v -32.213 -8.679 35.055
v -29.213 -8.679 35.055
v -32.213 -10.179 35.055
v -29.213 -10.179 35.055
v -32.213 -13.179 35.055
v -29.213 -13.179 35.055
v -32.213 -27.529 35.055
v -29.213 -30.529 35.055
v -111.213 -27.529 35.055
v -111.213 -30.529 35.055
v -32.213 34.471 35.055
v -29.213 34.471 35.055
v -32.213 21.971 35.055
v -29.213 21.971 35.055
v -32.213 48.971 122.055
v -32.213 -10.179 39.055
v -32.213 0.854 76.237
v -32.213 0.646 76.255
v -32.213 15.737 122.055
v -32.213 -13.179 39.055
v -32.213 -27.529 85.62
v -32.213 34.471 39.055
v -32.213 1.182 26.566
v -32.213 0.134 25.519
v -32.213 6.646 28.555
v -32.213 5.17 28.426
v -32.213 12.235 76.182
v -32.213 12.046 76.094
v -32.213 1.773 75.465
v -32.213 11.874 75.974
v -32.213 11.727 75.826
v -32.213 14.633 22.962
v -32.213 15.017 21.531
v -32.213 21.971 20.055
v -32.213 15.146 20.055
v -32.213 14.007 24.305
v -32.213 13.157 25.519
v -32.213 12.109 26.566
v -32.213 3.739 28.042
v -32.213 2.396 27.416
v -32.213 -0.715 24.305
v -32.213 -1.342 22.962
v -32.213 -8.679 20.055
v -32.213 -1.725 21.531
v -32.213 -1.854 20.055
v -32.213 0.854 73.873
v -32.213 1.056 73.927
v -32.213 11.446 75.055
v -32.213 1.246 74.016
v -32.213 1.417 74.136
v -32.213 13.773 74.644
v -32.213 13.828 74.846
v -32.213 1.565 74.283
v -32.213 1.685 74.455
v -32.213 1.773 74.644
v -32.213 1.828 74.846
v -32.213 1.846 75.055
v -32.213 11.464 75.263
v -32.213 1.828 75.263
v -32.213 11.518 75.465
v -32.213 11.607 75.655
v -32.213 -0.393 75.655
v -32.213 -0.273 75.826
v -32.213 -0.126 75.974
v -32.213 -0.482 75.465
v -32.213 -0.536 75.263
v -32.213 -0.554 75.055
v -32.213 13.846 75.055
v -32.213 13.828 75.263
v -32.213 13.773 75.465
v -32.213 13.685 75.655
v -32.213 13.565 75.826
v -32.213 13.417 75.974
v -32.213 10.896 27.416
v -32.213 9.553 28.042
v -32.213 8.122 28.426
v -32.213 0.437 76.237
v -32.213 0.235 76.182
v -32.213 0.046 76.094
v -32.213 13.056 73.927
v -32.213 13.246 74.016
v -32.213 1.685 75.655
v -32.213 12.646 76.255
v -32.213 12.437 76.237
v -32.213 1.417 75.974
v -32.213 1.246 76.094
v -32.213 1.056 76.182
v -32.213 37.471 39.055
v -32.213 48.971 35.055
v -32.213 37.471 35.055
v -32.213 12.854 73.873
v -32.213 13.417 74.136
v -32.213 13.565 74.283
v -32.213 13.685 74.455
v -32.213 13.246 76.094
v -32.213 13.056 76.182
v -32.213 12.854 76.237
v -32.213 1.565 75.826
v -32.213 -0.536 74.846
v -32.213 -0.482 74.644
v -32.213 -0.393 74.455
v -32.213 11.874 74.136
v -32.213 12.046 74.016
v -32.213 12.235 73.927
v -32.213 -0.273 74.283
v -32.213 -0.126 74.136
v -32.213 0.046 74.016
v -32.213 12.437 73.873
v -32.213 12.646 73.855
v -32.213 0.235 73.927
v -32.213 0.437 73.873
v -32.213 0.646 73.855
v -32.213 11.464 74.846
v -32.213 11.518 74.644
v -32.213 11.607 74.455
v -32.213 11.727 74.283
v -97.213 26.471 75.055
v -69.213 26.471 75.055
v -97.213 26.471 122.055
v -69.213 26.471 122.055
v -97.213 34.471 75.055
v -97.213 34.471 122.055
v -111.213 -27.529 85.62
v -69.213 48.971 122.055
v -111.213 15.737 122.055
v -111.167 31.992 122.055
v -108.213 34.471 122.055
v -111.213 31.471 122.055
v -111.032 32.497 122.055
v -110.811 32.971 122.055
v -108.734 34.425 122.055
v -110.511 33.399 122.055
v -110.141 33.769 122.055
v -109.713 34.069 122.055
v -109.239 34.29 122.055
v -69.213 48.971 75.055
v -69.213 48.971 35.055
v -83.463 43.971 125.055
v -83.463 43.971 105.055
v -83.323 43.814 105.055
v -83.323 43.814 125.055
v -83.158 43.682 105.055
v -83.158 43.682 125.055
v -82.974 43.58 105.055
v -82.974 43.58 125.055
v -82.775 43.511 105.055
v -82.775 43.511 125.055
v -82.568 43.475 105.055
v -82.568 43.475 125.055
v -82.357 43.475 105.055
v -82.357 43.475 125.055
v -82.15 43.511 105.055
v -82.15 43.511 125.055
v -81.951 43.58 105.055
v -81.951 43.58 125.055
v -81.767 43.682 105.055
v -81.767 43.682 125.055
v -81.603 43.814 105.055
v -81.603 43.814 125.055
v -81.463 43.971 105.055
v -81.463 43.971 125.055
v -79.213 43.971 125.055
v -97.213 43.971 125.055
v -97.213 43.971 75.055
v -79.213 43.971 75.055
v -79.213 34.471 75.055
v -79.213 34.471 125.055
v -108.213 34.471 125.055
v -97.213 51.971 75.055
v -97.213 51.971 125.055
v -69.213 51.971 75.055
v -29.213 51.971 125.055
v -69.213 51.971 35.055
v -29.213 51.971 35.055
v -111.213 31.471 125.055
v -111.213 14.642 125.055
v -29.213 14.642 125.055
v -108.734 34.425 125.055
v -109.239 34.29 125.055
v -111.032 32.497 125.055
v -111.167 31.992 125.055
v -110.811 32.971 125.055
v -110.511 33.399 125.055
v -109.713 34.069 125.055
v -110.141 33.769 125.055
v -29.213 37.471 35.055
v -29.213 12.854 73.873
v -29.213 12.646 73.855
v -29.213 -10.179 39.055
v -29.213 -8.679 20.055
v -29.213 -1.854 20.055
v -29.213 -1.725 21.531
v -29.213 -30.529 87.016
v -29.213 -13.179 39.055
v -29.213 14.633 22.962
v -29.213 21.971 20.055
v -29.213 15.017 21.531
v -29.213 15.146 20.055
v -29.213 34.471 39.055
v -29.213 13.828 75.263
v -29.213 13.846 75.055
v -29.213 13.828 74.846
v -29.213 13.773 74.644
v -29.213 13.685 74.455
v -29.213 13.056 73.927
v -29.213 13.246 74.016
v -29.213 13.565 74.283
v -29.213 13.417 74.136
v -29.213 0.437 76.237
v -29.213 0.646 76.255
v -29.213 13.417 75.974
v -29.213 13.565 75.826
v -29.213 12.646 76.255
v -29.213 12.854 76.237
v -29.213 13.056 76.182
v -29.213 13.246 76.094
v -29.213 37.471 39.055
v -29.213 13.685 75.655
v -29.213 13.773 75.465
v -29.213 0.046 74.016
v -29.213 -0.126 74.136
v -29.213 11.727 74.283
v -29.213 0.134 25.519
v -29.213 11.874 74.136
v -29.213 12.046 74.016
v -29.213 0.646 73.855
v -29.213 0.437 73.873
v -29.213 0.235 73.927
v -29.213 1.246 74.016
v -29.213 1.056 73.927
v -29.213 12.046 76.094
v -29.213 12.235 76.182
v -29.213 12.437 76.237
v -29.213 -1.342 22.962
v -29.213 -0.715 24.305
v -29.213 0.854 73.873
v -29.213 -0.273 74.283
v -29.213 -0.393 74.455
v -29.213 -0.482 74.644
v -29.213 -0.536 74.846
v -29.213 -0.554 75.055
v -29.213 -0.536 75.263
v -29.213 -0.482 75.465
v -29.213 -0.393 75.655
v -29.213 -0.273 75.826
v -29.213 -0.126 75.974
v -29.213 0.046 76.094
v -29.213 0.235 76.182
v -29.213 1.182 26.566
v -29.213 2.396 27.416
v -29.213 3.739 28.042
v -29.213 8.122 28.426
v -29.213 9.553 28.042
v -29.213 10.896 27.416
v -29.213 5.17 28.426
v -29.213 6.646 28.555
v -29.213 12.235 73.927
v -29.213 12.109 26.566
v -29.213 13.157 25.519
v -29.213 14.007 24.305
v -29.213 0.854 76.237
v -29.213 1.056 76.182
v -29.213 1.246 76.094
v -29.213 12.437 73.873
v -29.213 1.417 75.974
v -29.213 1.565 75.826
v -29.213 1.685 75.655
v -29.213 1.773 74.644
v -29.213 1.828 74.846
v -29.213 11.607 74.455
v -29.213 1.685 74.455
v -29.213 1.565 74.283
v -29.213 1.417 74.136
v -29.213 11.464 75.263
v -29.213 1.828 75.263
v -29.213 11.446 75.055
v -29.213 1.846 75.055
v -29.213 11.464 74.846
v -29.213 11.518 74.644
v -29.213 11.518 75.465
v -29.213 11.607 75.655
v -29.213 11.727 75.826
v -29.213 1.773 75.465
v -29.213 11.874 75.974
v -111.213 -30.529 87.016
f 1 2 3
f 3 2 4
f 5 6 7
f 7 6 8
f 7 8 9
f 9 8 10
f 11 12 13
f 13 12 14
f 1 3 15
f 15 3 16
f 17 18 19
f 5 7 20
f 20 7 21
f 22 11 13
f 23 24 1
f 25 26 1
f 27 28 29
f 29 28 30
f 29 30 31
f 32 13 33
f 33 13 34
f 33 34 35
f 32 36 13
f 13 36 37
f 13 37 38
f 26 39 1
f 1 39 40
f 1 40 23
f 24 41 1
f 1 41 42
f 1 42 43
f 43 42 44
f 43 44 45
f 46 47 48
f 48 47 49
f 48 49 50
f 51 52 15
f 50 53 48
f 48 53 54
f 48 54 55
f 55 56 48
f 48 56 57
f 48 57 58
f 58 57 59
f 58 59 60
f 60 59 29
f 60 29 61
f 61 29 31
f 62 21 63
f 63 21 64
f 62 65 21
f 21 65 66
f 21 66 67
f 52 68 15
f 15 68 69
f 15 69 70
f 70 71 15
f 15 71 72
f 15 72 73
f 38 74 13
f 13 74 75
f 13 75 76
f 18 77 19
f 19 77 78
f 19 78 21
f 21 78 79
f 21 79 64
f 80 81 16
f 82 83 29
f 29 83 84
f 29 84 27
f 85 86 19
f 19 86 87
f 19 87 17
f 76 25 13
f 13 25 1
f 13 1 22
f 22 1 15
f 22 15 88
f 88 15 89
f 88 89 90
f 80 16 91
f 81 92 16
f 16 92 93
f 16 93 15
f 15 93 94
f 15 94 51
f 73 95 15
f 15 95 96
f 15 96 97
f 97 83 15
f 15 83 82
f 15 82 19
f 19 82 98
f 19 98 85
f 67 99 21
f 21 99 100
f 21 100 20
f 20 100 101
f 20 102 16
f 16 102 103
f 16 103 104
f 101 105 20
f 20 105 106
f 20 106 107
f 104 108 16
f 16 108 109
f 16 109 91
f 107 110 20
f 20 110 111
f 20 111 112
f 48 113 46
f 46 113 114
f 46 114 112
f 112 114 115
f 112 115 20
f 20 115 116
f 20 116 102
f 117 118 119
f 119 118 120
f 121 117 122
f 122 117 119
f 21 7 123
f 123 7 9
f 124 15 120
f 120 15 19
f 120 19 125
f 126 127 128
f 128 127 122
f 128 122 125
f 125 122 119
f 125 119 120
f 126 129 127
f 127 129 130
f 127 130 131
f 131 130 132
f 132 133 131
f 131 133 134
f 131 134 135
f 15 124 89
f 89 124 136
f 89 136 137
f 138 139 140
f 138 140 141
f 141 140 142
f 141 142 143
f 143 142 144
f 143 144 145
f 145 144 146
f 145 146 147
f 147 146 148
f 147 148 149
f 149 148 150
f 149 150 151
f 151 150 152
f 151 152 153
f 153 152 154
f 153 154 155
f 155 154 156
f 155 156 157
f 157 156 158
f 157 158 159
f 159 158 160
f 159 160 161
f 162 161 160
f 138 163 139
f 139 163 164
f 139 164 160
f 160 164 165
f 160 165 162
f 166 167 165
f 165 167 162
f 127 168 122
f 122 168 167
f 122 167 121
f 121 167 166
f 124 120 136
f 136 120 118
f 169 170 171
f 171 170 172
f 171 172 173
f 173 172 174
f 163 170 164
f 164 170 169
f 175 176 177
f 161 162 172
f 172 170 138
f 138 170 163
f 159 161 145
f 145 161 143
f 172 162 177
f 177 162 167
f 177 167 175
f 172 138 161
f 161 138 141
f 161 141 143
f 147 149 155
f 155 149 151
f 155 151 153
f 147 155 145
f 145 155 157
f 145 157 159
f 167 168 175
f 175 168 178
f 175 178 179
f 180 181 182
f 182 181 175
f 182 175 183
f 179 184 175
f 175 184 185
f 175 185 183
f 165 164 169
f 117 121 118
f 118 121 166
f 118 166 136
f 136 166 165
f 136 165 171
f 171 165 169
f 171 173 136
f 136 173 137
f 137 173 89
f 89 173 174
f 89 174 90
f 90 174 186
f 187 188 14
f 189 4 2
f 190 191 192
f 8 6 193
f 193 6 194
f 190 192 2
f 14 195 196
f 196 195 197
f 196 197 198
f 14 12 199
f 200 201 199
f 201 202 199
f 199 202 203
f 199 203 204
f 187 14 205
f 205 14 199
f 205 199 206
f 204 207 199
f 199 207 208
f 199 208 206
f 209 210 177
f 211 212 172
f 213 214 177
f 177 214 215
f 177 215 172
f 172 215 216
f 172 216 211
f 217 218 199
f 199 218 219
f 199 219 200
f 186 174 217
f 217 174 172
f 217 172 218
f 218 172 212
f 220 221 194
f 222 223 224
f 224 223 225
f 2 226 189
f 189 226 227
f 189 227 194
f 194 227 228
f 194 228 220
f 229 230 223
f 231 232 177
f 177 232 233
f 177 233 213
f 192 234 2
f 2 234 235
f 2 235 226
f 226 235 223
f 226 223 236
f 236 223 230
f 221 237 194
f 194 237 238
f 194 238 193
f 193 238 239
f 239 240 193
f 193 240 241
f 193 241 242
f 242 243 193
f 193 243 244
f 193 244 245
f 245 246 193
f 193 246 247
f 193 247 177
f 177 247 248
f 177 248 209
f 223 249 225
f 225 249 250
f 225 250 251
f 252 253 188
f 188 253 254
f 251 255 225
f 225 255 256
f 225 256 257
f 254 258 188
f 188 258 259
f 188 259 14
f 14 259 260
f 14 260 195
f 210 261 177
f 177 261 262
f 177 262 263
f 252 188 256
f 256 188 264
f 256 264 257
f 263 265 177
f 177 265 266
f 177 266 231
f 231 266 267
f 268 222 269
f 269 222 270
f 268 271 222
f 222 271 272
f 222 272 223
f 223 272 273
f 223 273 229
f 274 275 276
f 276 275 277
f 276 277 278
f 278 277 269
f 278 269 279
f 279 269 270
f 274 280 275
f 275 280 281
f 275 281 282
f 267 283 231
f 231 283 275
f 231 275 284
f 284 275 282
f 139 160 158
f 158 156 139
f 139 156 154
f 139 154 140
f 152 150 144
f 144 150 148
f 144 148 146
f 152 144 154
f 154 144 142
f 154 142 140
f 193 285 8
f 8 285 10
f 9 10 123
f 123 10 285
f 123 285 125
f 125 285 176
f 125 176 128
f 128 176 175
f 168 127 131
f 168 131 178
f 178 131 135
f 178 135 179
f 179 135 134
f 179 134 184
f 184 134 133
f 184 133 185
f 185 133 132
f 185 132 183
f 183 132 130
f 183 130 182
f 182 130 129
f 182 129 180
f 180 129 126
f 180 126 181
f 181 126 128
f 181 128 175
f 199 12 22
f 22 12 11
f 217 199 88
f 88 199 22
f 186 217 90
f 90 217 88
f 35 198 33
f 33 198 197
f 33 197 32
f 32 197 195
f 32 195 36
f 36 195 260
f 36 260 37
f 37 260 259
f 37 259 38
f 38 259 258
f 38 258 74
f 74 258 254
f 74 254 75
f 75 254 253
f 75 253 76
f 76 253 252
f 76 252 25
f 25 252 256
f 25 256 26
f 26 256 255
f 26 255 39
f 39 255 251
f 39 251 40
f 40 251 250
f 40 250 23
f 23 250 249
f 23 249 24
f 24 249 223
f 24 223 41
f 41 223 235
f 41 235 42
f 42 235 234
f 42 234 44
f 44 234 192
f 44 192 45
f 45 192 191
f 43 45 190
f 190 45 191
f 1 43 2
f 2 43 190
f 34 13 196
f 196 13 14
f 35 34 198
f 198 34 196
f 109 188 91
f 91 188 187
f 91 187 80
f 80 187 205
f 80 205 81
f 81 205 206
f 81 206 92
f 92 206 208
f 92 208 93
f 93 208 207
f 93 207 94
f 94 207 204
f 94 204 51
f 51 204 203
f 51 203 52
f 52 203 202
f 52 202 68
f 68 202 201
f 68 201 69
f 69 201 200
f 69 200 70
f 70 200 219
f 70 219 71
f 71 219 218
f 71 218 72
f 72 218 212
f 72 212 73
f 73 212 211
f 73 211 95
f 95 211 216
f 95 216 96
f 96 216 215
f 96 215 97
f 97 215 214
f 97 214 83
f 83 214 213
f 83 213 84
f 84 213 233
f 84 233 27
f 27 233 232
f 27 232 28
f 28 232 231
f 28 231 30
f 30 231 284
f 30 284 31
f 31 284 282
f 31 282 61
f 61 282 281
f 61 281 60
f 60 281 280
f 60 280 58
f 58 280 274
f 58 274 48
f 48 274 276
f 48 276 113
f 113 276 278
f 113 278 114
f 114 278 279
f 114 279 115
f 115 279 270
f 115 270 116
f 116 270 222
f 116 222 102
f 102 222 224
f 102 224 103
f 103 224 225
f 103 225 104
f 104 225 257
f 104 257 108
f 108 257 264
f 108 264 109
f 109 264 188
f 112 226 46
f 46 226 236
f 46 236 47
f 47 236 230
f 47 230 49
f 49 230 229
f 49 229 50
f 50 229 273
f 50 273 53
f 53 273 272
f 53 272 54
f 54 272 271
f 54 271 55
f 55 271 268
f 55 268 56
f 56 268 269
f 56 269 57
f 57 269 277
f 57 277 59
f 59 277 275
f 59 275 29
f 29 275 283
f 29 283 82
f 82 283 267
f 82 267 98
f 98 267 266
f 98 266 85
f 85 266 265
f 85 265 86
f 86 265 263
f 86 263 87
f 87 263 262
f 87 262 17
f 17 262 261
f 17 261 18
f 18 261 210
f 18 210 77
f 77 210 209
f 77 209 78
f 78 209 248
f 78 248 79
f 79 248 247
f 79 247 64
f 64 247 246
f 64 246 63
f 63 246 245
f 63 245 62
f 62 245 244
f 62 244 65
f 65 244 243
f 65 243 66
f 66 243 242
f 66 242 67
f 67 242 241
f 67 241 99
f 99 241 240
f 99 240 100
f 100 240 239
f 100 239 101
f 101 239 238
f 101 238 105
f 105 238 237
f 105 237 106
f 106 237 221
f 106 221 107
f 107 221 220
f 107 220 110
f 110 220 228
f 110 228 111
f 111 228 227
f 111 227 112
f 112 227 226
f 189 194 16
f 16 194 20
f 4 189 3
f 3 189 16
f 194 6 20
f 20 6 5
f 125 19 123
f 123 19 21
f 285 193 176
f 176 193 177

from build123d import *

# Parameters (mm, degrees)
BOSS_EXTRUDE1_DEPTH = 50
SKETCH2_W           = 3
SKETCH2_H           = 22.5
SKETCH2_W_2         = 40
SKETCH2_H_2         = 3
BOSS_EXTRUDE2_DEPTH = 40
SKETCH3_W           = 18
SKETCH3_H           = 9.5
CUT_EXTRUDE1_DEPTH  = 30
SKETCH4_W           = 3
SKETCH4_H           = 90
BOSS_EXTRUDE3_DEPTH = 79.5
SKETCH6_W           = 90
SKETCH6_H           = 3
BOSS_EXTRUDE4_DEPTH = 79
BOSS_EXTRUDE5_DEPTH = 3
FILLET1_R           = 3
SKETCH11_W          = 4
SKETCH11_H          = 3
CUT_EXTRUDE2_DEPTH  = 3
BOSS_EXTRUDE6_DEPTH = 3
SKETCH15_R          = 1.2
SKETCH15_W          = 4
SKETCH15_H          = 3
CUT_EXTRUDE3_DEPTH  = 3
CUT_EXTRUDE4_DEPTH  = 83
BOSS_EXTRUDE7_DEPTH = 82


with BuildPart() as part:
    # Sketch1 → Boss-Extrude1 (new body)
    with BuildSketch(Plane.XY.offset(75.054829109)):
        with BuildLine():
            Line((-97.212578399, 43.970791156), (-83.462578399, 43.970791156))
            ThreePointArc((-83.462578399, 43.970791156), (-82.462578399, 43.470791156), (-81.462578399, 43.970791156))
            Line((-81.462578399, 43.970791156), (-79.212578399, 43.970791156))
            Line((-79.212578399, 43.970791156), (-79.212578399, 34.470791156))
            Line((-79.212578399, 34.470791156), (-97.212578399, 34.470791156))
            Line((-97.212578399, 34.470791156), (-97.212578399, 26.470791156))
            Line((-97.212578399, 26.470791156), (-69.212578399, 26.470791156))
            Line((-69.212578399, 26.470791156), (-69.212578399, 51.970791156))
            Line((-69.212578399, 51.970791156), (-97.212578399, 51.970791156))
            Line((-97.212578399, 51.970791156), (-97.212578399, 43.970791156))
        make_face()
    extrude(amount=BOSS_EXTRUDE1_DEPTH)

    # Sketch2 → Boss-Extrude2 (add)
    with BuildSketch(Plane(origin=(-69.212578399, 0, 0), x_dir=(0, 0, -1), z_dir=(1, 0, 0))):
        with Locations((-123.554829109, 37.720791156)):
            Rectangle(SKETCH2_W, SKETCH2_H)
        Polygon((-75.054829109, 51.970791156), (-125.054829109, 51.970791156), (-125.054829109, 48.970791156), (-122.054829109, 48.970791156), (-75.054829109, 48.970791156), align=None)
        with Locations((-55.054829109, 50.470791156)):
            Rectangle(SKETCH2_W_2, SKETCH2_H_2)
    extrude(amount=BOSS_EXTRUDE2_DEPTH)

    # Sketch3 → Cut-Extrude1 (cut)
    with BuildSketch(Plane(origin=(0, 0, 75.054829109), x_dir=(-1, 0, 0), z_dir=(0, 0, -1))):
        with Locations((88.212578399, 39.220791156)):
            Rectangle(SKETCH3_W, SKETCH3_H)
    extrude(amount=-CUT_EXTRUDE1_DEPTH, mode=Mode.SUBTRACT)

    # Sketch4 → Boss-Extrude3 (add)
    with BuildSketch(Plane.XZ.offset(-48.970791156)):
        with Locations((-30.712578399, 80.054829109)):
            Rectangle(SKETCH4_W, SKETCH4_H)
    extrude(amount=BOSS_EXTRUDE3_DEPTH)

    # Sketch6 → Boss-Extrude4 (add)
    with BuildSketch(Plane.ZY.offset(32.212578399)):
        with Locations((80.054829109, -29.029208844)):
            Rectangle(SKETCH6_W, SKETCH6_H)
    extrude(amount=BOSS_EXTRUDE4_DEPTH)

    # Sketch7 → Boss-Extrude5 (add)
    with BuildSketch(Plane.XY.offset(125.054829109)):
        Polygon((-111.212578399, -27.529208844), (-32.212578399, -27.529208844), (-32.212578399, 26.470791156), (-97.212578399, 26.470791156), (-97.212578399, 34.470791156), (-111.212578399, 34.470791156), align=None)
    extrude(amount=-BOSS_EXTRUDE5_DEPTH)

    # Fillet1
    fillet1_edges = [part.edges().sort_by_distance(p)[0] for p in [
        (-111.212578399, 34.470791156, 123.554829109),
    ]]
    fillet(fillet1_edges, radius=FILLET1_R)

    # Sketch11 → Cut-Extrude2 (cut)
    with BuildSketch(Plane(origin=(-29.212578399, 0, 0), x_dir=(0, 0, -1), z_dir=(1, 0, 0))):
        with Locations((-37.054829109, 35.970791156)):
            Rectangle(SKETCH11_W, SKETCH11_H)
    extrude(amount=-CUT_EXTRUDE2_DEPTH, mode=Mode.SUBTRACT)

    # Sketch13 → Boss-Extrude6 (add)
    with BuildSketch(Plane(origin=(-29.212578399, 0, 0), x_dir=(0, 0, -1), z_dir=(1, 0, 0))):
        with BuildLine():
            Line((-20.054829109, 15.145791156), (-20.054829109, 21.970791156))
            Line((-20.054829109, 21.970791156), (-35.054829109, 21.970791156))
            Line((-35.054829109, 21.970791156), (-35.054829109, -8.679208844))
            Line((-35.054829109, -8.679208844), (-20.054829109, -8.679208844))
            Line((-20.054829109, -8.679208844), (-20.054829109, -1.854208844))
            ThreePointArc((-20.054829109, -1.854208844), (-28.554829109, 6.645791156), (-20.054829109, 15.145791156))
        make_face()
    extrude(amount=-BOSS_EXTRUDE6_DEPTH)

    # Sketch15 → Cut-Extrude3 (cut)
    with BuildSketch(Plane(origin=(-29.212578399, 0, 0), x_dir=(0, 0, -1), z_dir=(1, 0, 0))):
        with Locations((-75.054829109, 0.645791156)):
            Circle(SKETCH15_R)
        with Locations((-75.054829109, 12.645791156)):
            Circle(SKETCH15_R)
        with Locations((-37.054829109, -11.679208844)):
            Rectangle(SKETCH15_W, SKETCH15_H)
    extrude(amount=-CUT_EXTRUDE3_DEPTH, mode=Mode.SUBTRACT)

    # Sketch16 → Cut-Extrude4 (cut, through all)
    with BuildSketch(Plane(origin=(-29.212578399, 0, 0), x_dir=(0, 0, -1), z_dir=(1, 0, 0))):
        Polygon((-125.054829109, 16.970791156), (-85.054829109, -30.529208844), (-125.054829109, -30.529208844), align=None)
    extrude(amount=-CUT_EXTRUDE4_DEPTH, mode=Mode.SUBTRACT)

    # Sketch17 → Boss-Extrude7 (add)
    with BuildSketch(Plane(origin=(-29.212578399, 0, 0), x_dir=(0, 0, -1), z_dir=(1, 0, 0))):
        Polygon((-125.054829109, 19.299492846), (-125.054829109, 14.642089465), (-87.015841059, -30.529208844), (-83.093817159, -30.529208844), align=None)
    extrude(amount=-BOSS_EXTRUDE7_DEPTH)


solid = part.part
